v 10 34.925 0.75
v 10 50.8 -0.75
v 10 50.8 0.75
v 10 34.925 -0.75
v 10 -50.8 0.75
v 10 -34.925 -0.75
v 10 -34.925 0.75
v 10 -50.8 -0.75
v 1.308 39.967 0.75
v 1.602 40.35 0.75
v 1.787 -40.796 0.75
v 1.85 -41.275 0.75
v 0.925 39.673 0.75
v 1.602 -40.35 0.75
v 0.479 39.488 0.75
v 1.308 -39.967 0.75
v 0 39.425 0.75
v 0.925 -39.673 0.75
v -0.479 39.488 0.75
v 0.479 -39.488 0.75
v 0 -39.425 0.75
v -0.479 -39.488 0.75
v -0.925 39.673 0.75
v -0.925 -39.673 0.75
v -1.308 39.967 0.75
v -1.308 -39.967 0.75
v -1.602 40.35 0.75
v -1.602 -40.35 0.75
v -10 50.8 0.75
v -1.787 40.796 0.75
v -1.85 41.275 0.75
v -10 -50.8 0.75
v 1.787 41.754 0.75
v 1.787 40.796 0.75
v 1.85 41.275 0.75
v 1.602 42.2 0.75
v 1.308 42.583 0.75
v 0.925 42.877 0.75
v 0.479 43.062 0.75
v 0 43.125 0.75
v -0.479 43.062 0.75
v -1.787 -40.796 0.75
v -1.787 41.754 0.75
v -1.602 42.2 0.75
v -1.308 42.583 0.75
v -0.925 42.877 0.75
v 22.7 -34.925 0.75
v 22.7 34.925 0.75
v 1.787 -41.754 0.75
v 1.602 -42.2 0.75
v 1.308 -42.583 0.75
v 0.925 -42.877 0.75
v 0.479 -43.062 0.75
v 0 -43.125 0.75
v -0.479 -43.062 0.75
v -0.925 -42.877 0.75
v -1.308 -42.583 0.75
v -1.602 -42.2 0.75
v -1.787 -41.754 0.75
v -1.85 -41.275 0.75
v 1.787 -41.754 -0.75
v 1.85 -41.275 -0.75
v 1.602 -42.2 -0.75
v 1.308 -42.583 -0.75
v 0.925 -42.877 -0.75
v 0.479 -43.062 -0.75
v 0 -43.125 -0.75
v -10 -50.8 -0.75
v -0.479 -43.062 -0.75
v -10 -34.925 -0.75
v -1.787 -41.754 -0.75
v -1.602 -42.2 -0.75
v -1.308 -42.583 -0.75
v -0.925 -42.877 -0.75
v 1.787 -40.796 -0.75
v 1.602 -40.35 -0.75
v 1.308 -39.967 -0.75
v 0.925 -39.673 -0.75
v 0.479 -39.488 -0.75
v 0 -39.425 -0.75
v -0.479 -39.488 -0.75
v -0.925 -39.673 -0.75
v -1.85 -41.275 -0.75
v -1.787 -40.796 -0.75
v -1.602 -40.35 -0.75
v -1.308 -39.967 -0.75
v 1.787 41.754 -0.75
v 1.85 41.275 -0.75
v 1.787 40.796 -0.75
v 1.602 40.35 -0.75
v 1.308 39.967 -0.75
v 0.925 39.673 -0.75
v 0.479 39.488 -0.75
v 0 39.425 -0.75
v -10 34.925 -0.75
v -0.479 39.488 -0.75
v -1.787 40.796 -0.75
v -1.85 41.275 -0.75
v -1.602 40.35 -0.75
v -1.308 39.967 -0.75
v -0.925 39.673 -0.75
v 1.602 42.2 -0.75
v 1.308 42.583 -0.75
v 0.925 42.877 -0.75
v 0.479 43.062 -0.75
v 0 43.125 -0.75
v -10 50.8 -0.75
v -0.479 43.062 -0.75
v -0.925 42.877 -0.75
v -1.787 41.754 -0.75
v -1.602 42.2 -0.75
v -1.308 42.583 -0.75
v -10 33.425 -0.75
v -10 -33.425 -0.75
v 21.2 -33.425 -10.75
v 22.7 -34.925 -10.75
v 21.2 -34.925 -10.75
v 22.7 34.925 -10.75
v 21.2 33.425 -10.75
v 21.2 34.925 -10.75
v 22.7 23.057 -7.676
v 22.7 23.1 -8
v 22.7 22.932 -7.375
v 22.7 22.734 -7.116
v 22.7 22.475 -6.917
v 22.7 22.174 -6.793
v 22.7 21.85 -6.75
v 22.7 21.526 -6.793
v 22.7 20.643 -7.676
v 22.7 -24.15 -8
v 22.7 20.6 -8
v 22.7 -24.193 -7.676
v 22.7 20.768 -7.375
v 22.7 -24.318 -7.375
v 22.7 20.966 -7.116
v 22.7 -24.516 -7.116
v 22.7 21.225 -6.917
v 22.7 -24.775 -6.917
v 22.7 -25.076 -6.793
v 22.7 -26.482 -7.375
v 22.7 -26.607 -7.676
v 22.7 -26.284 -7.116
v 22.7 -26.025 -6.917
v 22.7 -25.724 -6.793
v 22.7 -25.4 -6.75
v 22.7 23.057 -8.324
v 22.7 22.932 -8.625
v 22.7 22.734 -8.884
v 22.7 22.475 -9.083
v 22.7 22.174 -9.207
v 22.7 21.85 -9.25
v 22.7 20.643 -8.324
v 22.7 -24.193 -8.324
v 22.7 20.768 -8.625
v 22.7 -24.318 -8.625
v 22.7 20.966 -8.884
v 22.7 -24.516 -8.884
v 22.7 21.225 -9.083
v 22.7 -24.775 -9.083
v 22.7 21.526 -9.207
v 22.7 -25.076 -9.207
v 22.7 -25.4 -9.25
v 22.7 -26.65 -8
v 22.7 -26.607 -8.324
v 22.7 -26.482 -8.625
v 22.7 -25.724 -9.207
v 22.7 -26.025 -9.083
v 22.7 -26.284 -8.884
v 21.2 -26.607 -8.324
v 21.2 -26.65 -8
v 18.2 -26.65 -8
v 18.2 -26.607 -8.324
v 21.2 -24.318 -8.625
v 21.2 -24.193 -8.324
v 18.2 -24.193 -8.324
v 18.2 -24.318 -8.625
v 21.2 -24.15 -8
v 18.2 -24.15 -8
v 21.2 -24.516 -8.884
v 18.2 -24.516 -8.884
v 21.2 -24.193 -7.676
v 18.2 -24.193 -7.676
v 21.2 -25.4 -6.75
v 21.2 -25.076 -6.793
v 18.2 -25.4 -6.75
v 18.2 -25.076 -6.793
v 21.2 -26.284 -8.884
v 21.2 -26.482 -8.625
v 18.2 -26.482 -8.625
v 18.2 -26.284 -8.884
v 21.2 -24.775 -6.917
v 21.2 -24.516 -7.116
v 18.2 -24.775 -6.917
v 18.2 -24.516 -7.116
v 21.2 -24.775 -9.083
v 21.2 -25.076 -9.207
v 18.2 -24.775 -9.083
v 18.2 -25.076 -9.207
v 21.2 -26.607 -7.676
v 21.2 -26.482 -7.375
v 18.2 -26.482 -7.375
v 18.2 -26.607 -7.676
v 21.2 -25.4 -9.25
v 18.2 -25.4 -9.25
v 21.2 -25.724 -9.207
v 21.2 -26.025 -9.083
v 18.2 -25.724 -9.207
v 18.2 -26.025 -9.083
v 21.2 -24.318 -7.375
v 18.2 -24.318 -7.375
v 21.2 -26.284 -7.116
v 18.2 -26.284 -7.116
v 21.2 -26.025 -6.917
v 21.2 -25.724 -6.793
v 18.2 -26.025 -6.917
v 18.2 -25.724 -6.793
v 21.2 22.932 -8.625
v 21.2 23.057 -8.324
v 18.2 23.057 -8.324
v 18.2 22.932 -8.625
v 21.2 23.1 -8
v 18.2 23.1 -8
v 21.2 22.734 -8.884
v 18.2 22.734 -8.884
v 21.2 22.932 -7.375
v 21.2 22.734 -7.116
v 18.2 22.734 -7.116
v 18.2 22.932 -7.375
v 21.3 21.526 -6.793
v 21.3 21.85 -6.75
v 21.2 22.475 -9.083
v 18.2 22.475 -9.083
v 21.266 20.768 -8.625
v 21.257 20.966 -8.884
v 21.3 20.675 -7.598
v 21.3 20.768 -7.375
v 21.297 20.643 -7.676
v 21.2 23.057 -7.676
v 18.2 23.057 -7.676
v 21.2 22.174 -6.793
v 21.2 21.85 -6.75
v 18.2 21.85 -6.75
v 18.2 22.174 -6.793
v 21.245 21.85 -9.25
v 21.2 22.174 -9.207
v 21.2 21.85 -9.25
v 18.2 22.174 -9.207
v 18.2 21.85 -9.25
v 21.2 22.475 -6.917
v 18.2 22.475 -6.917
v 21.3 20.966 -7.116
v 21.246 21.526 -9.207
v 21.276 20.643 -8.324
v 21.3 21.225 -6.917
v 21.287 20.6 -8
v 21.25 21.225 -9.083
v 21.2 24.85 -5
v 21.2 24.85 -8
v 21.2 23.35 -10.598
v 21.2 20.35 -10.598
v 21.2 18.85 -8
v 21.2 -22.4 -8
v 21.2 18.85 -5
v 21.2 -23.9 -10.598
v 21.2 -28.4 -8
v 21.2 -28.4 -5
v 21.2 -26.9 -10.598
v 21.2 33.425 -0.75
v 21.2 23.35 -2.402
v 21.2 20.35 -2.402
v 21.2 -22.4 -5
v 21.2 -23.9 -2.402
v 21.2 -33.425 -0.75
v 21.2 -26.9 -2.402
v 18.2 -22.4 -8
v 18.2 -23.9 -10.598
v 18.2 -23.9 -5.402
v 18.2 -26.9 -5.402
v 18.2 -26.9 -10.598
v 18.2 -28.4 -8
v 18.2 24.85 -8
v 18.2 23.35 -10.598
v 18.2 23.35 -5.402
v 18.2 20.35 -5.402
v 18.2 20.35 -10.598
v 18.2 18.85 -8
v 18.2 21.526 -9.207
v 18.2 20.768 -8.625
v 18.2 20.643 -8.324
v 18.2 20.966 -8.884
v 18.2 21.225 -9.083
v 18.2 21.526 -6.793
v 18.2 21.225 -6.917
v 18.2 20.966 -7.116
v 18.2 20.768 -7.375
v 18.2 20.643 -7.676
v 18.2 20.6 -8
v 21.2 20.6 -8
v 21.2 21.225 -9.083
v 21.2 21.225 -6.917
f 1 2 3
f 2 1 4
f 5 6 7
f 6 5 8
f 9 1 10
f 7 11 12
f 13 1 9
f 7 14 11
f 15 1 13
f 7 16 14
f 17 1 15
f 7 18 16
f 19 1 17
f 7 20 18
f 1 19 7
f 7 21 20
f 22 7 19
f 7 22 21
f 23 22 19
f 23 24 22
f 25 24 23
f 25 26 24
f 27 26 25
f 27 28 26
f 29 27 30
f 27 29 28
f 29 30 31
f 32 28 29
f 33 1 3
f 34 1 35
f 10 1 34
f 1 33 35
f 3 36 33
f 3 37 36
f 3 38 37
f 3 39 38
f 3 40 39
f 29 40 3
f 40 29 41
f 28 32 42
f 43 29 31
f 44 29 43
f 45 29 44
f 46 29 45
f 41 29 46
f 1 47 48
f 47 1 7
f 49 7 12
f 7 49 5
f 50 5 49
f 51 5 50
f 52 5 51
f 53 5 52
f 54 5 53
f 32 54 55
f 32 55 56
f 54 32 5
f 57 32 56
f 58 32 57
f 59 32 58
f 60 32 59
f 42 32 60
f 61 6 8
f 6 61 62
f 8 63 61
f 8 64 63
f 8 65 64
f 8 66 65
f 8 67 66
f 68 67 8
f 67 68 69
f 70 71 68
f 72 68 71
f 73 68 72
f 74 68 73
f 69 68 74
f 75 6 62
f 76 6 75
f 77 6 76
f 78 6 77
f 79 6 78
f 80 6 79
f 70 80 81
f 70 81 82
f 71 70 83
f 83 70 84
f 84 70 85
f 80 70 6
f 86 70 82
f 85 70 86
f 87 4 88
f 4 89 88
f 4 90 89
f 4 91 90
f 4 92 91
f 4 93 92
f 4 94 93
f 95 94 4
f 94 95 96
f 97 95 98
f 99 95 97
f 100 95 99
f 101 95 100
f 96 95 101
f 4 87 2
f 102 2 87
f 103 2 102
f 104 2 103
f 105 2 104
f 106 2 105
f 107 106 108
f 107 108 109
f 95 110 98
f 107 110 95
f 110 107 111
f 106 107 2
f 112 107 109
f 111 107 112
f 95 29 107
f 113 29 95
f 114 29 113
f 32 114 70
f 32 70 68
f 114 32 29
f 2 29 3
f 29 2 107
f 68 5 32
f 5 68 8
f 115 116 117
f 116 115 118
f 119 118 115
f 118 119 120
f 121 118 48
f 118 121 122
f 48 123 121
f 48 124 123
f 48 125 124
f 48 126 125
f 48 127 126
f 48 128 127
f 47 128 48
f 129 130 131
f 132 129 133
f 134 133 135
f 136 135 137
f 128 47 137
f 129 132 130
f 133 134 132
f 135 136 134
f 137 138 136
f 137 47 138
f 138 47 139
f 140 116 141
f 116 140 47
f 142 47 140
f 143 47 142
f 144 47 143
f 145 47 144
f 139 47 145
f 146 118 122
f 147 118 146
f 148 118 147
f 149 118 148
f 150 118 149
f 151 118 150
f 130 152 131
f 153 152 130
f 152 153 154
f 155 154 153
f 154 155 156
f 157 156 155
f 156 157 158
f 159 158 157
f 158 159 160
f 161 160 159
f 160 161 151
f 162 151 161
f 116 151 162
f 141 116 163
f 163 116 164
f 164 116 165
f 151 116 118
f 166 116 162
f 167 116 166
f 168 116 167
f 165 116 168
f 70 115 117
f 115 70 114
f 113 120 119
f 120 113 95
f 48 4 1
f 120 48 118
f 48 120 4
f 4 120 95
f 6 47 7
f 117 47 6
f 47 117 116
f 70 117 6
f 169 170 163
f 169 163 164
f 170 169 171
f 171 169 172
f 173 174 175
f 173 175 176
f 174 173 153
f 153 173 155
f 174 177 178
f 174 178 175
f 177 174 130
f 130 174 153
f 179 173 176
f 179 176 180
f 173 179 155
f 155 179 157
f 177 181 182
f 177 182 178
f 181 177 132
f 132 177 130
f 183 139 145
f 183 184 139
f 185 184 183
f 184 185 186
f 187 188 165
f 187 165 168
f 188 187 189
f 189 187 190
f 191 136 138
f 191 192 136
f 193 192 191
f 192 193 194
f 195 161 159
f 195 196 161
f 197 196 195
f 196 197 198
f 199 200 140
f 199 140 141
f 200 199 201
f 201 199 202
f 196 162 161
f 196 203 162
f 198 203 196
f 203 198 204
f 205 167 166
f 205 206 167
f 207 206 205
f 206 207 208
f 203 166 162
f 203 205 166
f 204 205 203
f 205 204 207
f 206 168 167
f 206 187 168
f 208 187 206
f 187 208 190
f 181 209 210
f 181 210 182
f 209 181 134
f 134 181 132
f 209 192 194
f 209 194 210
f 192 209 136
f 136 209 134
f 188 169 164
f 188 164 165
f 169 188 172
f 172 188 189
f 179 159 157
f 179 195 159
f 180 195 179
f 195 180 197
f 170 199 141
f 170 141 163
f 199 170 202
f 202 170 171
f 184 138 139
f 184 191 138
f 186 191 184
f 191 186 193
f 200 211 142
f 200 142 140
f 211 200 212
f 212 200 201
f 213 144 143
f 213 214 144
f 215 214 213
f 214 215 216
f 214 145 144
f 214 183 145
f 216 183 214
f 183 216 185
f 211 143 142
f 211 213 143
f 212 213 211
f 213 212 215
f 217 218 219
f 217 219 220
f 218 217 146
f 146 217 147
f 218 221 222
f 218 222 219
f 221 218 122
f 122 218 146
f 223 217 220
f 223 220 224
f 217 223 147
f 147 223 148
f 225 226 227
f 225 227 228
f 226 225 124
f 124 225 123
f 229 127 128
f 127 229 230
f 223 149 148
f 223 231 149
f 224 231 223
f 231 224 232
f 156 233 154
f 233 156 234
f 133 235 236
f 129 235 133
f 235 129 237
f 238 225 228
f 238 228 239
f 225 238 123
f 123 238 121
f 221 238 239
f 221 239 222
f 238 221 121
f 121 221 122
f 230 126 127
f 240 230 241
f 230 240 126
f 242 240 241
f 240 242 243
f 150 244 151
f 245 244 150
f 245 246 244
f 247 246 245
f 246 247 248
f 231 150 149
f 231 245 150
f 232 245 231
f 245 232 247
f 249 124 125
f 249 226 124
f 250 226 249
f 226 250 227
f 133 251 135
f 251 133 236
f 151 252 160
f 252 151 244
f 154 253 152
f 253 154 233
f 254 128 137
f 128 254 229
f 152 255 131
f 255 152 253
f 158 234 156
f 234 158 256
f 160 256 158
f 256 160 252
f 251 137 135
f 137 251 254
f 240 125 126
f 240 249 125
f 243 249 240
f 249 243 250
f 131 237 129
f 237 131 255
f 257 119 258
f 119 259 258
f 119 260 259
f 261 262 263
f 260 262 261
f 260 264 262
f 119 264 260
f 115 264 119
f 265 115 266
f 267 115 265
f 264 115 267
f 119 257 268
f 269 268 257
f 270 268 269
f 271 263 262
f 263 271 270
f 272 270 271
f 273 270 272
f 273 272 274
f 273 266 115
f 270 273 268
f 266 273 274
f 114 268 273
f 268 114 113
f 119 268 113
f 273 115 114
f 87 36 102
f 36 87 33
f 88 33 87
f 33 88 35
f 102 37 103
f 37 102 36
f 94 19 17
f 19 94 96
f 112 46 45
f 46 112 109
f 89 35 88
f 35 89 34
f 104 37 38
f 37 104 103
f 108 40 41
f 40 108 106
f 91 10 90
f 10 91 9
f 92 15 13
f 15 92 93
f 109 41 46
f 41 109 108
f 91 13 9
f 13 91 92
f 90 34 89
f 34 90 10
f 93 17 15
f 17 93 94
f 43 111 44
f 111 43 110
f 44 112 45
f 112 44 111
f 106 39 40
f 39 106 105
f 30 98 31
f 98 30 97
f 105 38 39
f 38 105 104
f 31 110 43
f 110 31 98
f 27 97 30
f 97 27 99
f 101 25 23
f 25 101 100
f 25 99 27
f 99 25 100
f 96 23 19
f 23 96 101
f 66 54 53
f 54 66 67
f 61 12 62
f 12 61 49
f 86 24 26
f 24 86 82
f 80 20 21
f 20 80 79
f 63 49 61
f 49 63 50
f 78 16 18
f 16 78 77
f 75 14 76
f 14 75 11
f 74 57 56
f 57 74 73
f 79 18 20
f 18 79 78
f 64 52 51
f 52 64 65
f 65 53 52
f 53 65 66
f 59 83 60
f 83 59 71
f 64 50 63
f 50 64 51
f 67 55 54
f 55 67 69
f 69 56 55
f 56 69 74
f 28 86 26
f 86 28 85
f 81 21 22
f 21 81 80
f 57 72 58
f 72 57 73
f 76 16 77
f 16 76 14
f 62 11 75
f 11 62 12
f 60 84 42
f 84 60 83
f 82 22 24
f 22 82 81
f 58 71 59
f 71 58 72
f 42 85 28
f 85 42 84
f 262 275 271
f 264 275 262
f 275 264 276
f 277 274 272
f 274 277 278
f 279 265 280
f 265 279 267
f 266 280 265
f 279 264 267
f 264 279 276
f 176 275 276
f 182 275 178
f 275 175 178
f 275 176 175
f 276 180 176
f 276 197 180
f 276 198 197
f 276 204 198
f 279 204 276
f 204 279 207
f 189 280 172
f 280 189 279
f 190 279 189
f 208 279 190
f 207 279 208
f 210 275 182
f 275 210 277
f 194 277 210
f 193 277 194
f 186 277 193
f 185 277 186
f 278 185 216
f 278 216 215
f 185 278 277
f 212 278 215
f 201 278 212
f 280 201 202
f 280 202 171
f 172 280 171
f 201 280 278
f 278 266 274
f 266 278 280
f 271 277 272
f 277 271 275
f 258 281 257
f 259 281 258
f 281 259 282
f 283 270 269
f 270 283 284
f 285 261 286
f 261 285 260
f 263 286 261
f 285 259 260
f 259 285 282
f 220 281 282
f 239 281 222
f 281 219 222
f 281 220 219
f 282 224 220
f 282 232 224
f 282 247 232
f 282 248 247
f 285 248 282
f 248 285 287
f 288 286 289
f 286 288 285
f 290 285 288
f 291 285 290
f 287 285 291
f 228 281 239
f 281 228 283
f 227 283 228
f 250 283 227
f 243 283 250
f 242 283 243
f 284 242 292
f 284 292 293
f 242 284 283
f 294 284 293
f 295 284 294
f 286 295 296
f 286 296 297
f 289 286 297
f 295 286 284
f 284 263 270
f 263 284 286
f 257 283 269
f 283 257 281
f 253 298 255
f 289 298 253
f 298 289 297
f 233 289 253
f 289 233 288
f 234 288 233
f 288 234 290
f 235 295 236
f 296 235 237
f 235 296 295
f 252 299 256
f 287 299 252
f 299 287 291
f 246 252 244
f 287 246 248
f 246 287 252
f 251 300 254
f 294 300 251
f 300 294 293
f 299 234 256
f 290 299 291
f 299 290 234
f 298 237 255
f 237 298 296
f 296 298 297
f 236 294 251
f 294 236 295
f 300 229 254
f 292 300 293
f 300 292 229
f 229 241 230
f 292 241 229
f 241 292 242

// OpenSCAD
function inToMm(i) = i * 25.4;

union() {
    difference() {
        union() {
            cube([20, inToMm(4), 1.5], center = true);
            hull() {
                translate([-10, -inToMm(2.75) / 2 , -1.5 / 2]) cube([20, inToMm(2.75), 1.5]);
                translate([10 - 1.5 + inToMm(0.5), -inToMm(2.75) / 2 , 1.5 / 2]) 
                    rotate([0, 90, 0]) cube([11.5, inToMm(2.75), 1.5]);
            }
        }
        translate([-10, -inToMm(2.75) / 2 + 1.5, -1.5 / 2 - 10]) cube([20 - 1.5 + inToMm(0.5), inToMm(2.75) - 3, 10]);
        
        translate([0, inToMm(3.25) / 2, 0]) cylinder(d = 3.7, h = 4, center = true, $fn = 24);
        mirror([0, 1, 0]) translate([0, inToMm(3.25) / 2, 0]) cylinder(d = 3.7, h = 4, center = true, $fn = 24);

        // 4 Channel Relay.
        translate([10 + inToMm(0.5), -inToMm(2) / 2, -8]) rotate([-90, 0, 90]) {
            standoff(negative = true);
            translate([47.25, 0, 0])
                standoff(negative = true);
        }
        
    }
    
    // 4 Channel Relay.
    translate([10 + inToMm(0.5) - 1.5, -inToMm(2) / 2, -8]) rotate([-90, 0, 90]) {
        standoff();
        translate([47.25, 0, 0])
            standoff();
    }
}

module standoff(d = 6, h = 3, negative = false) {
    if (!negative) {
        difference() {
            hull() {
                cylinder(d = d, h = h, $fn = 6);
                translate([0, -d / 2, -0.1])
                    cylinder(d = d, h = 0.1, $fn = 6);
            }
            translate([0, 0, h - 5]) 
                cylinder(d = 2.5, h = 5, $fn = 24);
        }
    } else {
        cylinder(d = 2.5, h = h, $fn = 24);
    }
}
